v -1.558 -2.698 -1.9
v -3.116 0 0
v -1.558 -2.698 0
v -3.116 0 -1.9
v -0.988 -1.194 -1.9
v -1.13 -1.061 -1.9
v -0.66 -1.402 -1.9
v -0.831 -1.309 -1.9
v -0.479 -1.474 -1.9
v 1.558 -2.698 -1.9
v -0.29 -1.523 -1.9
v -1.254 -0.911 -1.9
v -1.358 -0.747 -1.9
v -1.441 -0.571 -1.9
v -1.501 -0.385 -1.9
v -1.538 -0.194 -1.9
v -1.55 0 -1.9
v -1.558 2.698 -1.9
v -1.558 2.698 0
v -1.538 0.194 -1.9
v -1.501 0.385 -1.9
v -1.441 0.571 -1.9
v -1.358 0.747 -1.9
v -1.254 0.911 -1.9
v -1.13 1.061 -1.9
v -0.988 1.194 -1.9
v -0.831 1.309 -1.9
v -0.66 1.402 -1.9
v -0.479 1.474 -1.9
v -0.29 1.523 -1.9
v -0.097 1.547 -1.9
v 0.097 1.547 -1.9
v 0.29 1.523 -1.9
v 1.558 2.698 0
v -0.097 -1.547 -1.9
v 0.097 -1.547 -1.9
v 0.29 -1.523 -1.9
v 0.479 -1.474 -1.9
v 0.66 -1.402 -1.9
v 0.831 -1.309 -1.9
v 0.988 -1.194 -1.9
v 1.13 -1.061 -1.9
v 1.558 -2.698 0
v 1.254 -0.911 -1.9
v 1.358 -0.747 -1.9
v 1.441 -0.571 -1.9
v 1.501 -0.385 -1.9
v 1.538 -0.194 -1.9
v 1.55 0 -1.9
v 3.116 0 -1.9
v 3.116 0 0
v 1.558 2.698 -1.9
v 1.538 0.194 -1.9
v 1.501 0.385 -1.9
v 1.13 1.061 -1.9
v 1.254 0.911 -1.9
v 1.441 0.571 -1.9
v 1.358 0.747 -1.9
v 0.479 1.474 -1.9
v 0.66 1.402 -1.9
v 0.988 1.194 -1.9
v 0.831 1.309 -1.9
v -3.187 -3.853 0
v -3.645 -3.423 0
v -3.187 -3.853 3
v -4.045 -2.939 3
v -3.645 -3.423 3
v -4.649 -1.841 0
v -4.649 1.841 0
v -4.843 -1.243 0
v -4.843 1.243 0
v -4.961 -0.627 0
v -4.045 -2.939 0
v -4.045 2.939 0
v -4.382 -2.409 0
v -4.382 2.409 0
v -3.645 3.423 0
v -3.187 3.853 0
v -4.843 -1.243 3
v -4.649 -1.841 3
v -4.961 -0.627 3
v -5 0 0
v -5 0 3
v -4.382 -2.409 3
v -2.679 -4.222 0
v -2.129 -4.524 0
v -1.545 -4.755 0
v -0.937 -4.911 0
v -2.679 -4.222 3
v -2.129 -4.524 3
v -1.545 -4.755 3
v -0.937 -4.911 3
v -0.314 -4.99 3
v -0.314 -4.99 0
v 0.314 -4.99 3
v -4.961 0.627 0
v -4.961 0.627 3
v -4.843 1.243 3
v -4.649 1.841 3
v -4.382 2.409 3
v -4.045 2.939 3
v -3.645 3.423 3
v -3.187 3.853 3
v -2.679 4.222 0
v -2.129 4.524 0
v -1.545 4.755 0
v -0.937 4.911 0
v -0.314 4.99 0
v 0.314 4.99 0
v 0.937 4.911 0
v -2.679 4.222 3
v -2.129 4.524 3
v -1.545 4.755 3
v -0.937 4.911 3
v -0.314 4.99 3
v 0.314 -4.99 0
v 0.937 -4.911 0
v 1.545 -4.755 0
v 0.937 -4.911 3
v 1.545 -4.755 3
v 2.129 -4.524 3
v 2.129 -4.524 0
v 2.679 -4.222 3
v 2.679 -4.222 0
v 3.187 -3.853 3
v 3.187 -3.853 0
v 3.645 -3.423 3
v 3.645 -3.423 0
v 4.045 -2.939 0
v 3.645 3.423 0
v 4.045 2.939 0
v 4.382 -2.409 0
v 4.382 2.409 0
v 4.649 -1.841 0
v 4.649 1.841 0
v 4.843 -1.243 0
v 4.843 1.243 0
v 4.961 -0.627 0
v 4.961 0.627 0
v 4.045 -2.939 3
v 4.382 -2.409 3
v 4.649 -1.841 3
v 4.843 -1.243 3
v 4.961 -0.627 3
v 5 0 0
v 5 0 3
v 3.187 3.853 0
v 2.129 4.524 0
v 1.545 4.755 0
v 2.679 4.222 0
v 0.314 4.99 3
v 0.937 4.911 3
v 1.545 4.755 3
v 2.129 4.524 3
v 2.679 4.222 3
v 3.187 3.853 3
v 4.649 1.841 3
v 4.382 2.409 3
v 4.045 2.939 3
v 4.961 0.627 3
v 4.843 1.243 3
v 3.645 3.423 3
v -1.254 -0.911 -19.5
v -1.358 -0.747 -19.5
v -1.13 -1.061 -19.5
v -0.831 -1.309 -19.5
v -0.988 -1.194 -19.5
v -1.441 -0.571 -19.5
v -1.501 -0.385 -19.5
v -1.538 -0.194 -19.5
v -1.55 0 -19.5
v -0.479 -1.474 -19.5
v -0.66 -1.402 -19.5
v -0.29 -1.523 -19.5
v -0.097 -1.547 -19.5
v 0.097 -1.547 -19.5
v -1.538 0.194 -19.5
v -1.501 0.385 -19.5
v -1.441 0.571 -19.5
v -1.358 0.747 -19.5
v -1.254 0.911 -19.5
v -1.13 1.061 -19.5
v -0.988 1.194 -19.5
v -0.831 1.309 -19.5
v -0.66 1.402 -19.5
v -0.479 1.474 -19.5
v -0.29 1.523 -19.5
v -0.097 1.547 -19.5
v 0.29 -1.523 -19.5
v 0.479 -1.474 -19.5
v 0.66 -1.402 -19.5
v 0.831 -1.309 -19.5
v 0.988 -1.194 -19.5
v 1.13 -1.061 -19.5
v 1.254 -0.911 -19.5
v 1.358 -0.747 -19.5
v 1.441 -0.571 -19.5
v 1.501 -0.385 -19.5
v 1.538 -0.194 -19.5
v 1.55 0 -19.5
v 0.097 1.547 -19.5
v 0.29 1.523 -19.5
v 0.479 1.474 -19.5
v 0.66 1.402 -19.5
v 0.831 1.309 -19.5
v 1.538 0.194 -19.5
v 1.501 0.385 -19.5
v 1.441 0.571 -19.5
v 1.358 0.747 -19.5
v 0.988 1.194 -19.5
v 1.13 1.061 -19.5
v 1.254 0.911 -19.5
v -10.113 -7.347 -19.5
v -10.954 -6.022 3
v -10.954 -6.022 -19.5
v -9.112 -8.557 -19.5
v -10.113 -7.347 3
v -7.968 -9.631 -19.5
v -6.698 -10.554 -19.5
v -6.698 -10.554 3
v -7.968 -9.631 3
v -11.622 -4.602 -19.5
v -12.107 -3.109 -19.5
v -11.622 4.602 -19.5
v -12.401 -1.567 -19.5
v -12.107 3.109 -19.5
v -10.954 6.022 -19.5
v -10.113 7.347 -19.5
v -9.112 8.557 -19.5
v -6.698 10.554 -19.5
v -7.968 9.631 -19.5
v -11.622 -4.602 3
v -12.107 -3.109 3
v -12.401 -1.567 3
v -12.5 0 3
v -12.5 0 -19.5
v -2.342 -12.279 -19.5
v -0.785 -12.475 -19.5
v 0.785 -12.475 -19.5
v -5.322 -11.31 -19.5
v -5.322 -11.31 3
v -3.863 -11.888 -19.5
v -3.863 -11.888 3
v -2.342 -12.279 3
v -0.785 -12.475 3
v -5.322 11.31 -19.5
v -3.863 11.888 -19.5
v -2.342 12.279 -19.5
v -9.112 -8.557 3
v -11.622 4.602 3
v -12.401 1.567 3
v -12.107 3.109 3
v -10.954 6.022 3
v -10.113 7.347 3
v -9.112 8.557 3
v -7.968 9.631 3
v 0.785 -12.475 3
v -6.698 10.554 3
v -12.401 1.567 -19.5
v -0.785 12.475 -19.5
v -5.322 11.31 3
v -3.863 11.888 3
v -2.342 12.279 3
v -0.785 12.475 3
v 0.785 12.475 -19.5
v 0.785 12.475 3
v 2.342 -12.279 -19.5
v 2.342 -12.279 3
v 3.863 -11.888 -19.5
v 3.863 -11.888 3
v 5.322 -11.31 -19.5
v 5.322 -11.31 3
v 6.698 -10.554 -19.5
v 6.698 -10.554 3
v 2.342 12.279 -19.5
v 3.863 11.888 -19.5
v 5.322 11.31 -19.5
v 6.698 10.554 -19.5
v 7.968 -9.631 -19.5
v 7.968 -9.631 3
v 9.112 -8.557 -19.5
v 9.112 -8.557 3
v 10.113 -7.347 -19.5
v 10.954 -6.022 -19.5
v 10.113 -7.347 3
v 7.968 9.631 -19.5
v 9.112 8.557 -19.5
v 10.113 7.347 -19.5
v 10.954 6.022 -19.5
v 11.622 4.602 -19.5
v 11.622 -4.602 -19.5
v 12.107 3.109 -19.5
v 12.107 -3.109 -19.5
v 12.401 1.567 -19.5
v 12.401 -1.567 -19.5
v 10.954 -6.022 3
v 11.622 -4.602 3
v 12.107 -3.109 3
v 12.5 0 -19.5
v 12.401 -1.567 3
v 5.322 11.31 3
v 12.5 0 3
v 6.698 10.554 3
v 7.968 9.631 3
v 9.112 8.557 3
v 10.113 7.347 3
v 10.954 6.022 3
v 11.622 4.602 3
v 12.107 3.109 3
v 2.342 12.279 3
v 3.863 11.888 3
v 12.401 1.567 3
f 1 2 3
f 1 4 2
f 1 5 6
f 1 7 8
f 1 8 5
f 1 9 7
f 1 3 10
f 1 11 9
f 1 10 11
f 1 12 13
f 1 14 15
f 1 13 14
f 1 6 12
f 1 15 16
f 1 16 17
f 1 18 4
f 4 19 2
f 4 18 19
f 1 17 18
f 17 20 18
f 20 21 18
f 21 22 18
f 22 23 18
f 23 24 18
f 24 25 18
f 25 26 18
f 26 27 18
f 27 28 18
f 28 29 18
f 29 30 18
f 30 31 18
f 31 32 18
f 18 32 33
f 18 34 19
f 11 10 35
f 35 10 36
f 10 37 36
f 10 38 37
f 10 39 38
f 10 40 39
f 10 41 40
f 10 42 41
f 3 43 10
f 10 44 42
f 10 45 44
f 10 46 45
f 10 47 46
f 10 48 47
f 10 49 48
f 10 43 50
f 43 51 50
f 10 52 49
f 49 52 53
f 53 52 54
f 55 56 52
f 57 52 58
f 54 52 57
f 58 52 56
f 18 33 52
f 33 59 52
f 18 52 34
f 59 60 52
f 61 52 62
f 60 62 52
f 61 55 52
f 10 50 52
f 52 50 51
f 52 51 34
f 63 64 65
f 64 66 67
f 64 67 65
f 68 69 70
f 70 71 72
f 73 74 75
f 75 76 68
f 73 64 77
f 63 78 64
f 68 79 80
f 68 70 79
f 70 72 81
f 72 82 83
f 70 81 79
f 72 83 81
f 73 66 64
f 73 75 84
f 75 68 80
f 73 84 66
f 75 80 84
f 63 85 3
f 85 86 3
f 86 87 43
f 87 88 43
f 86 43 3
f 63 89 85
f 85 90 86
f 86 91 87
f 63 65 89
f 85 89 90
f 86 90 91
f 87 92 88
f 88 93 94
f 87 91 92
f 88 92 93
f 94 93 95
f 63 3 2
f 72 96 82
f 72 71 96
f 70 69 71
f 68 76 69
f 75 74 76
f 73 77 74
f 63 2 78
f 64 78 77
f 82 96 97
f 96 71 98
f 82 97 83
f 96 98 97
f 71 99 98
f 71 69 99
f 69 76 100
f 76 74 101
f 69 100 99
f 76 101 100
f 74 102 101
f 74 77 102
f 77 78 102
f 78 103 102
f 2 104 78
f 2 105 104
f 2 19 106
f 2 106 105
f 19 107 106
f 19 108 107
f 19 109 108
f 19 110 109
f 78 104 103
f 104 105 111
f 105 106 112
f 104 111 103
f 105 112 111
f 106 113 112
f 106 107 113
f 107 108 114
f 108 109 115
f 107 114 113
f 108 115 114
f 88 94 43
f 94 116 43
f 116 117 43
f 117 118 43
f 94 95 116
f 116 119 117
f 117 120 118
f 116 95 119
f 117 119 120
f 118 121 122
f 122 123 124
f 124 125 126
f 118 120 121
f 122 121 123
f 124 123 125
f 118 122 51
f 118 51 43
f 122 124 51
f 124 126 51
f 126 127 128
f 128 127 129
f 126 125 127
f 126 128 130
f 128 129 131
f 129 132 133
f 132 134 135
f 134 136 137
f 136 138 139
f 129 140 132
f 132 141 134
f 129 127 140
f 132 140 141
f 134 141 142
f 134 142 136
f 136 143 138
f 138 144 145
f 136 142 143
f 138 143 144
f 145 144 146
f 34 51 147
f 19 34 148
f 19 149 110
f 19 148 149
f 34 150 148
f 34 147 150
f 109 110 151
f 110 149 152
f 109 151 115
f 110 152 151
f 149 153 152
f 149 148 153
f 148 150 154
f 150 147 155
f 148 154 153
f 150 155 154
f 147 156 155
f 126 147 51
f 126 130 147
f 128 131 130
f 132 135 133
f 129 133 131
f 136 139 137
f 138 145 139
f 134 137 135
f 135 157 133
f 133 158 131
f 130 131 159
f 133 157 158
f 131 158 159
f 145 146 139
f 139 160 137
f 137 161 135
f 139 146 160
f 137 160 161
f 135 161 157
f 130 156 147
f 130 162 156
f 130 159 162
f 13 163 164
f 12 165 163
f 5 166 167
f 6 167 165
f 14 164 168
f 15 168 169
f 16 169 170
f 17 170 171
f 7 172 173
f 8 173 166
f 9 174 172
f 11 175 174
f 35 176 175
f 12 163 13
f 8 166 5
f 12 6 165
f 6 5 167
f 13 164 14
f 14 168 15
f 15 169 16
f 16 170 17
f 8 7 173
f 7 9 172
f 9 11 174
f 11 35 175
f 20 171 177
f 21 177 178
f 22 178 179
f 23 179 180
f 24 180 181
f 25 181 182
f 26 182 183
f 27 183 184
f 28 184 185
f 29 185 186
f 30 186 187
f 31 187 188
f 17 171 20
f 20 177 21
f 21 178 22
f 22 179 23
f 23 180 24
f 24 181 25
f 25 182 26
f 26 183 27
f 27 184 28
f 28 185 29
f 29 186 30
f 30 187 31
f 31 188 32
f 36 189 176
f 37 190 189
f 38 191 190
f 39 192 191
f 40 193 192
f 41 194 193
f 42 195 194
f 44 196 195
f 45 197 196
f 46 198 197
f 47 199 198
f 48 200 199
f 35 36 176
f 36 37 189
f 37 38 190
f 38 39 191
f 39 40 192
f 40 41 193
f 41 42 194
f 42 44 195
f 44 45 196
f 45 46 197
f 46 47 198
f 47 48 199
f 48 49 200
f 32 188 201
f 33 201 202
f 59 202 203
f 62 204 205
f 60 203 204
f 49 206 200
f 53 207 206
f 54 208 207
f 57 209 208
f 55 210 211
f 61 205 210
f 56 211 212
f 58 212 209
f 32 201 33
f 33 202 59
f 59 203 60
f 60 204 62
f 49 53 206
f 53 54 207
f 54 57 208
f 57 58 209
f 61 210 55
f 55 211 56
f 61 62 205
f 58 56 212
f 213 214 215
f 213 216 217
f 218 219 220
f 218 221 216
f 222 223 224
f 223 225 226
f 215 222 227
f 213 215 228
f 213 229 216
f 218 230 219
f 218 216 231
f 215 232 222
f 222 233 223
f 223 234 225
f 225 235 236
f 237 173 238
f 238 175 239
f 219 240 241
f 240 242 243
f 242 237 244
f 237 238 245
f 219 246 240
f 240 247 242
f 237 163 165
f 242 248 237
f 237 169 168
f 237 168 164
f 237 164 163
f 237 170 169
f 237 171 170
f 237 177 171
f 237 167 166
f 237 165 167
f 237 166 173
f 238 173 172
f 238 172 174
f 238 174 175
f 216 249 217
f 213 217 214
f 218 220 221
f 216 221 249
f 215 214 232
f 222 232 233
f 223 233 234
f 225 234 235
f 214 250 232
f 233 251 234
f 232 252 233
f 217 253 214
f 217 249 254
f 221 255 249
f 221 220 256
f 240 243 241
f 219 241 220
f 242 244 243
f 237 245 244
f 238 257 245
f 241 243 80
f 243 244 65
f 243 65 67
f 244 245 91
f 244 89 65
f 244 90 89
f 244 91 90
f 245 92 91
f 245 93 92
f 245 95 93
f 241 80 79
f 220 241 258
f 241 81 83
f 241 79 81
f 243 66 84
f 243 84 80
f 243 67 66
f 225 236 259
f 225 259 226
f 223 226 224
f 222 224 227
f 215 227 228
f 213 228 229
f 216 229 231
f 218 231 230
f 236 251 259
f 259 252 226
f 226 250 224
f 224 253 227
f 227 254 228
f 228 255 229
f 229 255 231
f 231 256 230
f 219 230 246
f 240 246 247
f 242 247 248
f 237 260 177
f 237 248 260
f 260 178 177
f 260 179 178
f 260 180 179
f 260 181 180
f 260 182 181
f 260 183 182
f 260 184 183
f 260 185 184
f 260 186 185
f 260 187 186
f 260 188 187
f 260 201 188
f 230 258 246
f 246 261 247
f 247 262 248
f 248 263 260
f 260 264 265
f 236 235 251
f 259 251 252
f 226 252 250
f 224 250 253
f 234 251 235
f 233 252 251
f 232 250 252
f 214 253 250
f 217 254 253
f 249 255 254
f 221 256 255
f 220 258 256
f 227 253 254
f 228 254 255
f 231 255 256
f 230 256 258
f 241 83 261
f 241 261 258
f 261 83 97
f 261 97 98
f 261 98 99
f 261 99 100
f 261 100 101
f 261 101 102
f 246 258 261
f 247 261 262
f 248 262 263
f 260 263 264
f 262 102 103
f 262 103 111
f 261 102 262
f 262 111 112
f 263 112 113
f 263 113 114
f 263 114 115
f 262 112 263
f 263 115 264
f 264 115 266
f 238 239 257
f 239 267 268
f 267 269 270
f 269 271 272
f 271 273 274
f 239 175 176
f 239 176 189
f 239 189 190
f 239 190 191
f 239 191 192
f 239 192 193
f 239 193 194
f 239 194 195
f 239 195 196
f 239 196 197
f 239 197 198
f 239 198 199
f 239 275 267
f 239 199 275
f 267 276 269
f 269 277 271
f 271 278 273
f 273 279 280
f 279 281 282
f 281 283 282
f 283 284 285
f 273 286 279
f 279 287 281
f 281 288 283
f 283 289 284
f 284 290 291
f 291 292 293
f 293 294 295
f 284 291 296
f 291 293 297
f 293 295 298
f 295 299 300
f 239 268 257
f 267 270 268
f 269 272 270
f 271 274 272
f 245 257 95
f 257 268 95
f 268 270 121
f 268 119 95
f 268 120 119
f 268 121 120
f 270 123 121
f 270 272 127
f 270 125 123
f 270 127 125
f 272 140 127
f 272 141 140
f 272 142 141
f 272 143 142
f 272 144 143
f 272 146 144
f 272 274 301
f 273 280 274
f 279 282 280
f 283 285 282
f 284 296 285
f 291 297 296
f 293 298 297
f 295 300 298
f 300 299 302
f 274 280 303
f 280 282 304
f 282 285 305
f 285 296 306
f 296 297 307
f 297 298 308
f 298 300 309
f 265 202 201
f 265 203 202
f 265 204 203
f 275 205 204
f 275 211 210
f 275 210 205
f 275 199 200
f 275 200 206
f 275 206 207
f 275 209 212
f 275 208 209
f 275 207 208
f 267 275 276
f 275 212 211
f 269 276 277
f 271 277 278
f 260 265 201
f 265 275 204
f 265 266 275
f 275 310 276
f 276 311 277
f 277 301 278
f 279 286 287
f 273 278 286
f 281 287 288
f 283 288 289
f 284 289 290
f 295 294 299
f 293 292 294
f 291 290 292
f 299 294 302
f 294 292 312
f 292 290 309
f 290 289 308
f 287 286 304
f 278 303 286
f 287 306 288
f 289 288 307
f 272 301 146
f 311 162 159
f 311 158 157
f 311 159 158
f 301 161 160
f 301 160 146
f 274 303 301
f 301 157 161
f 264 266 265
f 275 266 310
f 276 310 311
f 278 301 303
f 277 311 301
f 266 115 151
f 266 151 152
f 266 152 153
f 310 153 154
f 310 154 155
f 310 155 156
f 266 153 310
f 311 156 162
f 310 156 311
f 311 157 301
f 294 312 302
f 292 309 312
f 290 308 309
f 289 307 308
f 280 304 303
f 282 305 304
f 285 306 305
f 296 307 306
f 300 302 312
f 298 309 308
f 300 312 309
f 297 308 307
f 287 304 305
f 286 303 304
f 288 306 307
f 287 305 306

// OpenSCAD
$fn = 50;

difference() {
	union() {
		translate(v = [0, 0, -19.5]) {
			cylinder(h = 22.5, r = 12.5);
		}
	}
	union() {
		translate(v = [0, 0, 0]) {
			rotate(a = [0, 0, 0]) {
				difference() {
					union() {
						translate(v = [0, 0, -1.9]) {
							linear_extrude(height = 1.9) {
								polygon(points = [[3.1158, 0.0], [1.5579000000000005, 2.698361953111554], [-1.5578999999999994, 2.6983619531115544], [-3.1158, 3.815754496783323e-16], [-1.5579000000000014, -2.6983619531115535], [1.557899999999998, -2.6983619531115552]]);
							}
						}
					}
					union();
				}
			}
		}
		#cylinder(h = 3, r = 5.0);
		#translate(v = [0, 0, -100.0]) {
			cylinder(h = 200, r = 1.55);
		}
	}
}
